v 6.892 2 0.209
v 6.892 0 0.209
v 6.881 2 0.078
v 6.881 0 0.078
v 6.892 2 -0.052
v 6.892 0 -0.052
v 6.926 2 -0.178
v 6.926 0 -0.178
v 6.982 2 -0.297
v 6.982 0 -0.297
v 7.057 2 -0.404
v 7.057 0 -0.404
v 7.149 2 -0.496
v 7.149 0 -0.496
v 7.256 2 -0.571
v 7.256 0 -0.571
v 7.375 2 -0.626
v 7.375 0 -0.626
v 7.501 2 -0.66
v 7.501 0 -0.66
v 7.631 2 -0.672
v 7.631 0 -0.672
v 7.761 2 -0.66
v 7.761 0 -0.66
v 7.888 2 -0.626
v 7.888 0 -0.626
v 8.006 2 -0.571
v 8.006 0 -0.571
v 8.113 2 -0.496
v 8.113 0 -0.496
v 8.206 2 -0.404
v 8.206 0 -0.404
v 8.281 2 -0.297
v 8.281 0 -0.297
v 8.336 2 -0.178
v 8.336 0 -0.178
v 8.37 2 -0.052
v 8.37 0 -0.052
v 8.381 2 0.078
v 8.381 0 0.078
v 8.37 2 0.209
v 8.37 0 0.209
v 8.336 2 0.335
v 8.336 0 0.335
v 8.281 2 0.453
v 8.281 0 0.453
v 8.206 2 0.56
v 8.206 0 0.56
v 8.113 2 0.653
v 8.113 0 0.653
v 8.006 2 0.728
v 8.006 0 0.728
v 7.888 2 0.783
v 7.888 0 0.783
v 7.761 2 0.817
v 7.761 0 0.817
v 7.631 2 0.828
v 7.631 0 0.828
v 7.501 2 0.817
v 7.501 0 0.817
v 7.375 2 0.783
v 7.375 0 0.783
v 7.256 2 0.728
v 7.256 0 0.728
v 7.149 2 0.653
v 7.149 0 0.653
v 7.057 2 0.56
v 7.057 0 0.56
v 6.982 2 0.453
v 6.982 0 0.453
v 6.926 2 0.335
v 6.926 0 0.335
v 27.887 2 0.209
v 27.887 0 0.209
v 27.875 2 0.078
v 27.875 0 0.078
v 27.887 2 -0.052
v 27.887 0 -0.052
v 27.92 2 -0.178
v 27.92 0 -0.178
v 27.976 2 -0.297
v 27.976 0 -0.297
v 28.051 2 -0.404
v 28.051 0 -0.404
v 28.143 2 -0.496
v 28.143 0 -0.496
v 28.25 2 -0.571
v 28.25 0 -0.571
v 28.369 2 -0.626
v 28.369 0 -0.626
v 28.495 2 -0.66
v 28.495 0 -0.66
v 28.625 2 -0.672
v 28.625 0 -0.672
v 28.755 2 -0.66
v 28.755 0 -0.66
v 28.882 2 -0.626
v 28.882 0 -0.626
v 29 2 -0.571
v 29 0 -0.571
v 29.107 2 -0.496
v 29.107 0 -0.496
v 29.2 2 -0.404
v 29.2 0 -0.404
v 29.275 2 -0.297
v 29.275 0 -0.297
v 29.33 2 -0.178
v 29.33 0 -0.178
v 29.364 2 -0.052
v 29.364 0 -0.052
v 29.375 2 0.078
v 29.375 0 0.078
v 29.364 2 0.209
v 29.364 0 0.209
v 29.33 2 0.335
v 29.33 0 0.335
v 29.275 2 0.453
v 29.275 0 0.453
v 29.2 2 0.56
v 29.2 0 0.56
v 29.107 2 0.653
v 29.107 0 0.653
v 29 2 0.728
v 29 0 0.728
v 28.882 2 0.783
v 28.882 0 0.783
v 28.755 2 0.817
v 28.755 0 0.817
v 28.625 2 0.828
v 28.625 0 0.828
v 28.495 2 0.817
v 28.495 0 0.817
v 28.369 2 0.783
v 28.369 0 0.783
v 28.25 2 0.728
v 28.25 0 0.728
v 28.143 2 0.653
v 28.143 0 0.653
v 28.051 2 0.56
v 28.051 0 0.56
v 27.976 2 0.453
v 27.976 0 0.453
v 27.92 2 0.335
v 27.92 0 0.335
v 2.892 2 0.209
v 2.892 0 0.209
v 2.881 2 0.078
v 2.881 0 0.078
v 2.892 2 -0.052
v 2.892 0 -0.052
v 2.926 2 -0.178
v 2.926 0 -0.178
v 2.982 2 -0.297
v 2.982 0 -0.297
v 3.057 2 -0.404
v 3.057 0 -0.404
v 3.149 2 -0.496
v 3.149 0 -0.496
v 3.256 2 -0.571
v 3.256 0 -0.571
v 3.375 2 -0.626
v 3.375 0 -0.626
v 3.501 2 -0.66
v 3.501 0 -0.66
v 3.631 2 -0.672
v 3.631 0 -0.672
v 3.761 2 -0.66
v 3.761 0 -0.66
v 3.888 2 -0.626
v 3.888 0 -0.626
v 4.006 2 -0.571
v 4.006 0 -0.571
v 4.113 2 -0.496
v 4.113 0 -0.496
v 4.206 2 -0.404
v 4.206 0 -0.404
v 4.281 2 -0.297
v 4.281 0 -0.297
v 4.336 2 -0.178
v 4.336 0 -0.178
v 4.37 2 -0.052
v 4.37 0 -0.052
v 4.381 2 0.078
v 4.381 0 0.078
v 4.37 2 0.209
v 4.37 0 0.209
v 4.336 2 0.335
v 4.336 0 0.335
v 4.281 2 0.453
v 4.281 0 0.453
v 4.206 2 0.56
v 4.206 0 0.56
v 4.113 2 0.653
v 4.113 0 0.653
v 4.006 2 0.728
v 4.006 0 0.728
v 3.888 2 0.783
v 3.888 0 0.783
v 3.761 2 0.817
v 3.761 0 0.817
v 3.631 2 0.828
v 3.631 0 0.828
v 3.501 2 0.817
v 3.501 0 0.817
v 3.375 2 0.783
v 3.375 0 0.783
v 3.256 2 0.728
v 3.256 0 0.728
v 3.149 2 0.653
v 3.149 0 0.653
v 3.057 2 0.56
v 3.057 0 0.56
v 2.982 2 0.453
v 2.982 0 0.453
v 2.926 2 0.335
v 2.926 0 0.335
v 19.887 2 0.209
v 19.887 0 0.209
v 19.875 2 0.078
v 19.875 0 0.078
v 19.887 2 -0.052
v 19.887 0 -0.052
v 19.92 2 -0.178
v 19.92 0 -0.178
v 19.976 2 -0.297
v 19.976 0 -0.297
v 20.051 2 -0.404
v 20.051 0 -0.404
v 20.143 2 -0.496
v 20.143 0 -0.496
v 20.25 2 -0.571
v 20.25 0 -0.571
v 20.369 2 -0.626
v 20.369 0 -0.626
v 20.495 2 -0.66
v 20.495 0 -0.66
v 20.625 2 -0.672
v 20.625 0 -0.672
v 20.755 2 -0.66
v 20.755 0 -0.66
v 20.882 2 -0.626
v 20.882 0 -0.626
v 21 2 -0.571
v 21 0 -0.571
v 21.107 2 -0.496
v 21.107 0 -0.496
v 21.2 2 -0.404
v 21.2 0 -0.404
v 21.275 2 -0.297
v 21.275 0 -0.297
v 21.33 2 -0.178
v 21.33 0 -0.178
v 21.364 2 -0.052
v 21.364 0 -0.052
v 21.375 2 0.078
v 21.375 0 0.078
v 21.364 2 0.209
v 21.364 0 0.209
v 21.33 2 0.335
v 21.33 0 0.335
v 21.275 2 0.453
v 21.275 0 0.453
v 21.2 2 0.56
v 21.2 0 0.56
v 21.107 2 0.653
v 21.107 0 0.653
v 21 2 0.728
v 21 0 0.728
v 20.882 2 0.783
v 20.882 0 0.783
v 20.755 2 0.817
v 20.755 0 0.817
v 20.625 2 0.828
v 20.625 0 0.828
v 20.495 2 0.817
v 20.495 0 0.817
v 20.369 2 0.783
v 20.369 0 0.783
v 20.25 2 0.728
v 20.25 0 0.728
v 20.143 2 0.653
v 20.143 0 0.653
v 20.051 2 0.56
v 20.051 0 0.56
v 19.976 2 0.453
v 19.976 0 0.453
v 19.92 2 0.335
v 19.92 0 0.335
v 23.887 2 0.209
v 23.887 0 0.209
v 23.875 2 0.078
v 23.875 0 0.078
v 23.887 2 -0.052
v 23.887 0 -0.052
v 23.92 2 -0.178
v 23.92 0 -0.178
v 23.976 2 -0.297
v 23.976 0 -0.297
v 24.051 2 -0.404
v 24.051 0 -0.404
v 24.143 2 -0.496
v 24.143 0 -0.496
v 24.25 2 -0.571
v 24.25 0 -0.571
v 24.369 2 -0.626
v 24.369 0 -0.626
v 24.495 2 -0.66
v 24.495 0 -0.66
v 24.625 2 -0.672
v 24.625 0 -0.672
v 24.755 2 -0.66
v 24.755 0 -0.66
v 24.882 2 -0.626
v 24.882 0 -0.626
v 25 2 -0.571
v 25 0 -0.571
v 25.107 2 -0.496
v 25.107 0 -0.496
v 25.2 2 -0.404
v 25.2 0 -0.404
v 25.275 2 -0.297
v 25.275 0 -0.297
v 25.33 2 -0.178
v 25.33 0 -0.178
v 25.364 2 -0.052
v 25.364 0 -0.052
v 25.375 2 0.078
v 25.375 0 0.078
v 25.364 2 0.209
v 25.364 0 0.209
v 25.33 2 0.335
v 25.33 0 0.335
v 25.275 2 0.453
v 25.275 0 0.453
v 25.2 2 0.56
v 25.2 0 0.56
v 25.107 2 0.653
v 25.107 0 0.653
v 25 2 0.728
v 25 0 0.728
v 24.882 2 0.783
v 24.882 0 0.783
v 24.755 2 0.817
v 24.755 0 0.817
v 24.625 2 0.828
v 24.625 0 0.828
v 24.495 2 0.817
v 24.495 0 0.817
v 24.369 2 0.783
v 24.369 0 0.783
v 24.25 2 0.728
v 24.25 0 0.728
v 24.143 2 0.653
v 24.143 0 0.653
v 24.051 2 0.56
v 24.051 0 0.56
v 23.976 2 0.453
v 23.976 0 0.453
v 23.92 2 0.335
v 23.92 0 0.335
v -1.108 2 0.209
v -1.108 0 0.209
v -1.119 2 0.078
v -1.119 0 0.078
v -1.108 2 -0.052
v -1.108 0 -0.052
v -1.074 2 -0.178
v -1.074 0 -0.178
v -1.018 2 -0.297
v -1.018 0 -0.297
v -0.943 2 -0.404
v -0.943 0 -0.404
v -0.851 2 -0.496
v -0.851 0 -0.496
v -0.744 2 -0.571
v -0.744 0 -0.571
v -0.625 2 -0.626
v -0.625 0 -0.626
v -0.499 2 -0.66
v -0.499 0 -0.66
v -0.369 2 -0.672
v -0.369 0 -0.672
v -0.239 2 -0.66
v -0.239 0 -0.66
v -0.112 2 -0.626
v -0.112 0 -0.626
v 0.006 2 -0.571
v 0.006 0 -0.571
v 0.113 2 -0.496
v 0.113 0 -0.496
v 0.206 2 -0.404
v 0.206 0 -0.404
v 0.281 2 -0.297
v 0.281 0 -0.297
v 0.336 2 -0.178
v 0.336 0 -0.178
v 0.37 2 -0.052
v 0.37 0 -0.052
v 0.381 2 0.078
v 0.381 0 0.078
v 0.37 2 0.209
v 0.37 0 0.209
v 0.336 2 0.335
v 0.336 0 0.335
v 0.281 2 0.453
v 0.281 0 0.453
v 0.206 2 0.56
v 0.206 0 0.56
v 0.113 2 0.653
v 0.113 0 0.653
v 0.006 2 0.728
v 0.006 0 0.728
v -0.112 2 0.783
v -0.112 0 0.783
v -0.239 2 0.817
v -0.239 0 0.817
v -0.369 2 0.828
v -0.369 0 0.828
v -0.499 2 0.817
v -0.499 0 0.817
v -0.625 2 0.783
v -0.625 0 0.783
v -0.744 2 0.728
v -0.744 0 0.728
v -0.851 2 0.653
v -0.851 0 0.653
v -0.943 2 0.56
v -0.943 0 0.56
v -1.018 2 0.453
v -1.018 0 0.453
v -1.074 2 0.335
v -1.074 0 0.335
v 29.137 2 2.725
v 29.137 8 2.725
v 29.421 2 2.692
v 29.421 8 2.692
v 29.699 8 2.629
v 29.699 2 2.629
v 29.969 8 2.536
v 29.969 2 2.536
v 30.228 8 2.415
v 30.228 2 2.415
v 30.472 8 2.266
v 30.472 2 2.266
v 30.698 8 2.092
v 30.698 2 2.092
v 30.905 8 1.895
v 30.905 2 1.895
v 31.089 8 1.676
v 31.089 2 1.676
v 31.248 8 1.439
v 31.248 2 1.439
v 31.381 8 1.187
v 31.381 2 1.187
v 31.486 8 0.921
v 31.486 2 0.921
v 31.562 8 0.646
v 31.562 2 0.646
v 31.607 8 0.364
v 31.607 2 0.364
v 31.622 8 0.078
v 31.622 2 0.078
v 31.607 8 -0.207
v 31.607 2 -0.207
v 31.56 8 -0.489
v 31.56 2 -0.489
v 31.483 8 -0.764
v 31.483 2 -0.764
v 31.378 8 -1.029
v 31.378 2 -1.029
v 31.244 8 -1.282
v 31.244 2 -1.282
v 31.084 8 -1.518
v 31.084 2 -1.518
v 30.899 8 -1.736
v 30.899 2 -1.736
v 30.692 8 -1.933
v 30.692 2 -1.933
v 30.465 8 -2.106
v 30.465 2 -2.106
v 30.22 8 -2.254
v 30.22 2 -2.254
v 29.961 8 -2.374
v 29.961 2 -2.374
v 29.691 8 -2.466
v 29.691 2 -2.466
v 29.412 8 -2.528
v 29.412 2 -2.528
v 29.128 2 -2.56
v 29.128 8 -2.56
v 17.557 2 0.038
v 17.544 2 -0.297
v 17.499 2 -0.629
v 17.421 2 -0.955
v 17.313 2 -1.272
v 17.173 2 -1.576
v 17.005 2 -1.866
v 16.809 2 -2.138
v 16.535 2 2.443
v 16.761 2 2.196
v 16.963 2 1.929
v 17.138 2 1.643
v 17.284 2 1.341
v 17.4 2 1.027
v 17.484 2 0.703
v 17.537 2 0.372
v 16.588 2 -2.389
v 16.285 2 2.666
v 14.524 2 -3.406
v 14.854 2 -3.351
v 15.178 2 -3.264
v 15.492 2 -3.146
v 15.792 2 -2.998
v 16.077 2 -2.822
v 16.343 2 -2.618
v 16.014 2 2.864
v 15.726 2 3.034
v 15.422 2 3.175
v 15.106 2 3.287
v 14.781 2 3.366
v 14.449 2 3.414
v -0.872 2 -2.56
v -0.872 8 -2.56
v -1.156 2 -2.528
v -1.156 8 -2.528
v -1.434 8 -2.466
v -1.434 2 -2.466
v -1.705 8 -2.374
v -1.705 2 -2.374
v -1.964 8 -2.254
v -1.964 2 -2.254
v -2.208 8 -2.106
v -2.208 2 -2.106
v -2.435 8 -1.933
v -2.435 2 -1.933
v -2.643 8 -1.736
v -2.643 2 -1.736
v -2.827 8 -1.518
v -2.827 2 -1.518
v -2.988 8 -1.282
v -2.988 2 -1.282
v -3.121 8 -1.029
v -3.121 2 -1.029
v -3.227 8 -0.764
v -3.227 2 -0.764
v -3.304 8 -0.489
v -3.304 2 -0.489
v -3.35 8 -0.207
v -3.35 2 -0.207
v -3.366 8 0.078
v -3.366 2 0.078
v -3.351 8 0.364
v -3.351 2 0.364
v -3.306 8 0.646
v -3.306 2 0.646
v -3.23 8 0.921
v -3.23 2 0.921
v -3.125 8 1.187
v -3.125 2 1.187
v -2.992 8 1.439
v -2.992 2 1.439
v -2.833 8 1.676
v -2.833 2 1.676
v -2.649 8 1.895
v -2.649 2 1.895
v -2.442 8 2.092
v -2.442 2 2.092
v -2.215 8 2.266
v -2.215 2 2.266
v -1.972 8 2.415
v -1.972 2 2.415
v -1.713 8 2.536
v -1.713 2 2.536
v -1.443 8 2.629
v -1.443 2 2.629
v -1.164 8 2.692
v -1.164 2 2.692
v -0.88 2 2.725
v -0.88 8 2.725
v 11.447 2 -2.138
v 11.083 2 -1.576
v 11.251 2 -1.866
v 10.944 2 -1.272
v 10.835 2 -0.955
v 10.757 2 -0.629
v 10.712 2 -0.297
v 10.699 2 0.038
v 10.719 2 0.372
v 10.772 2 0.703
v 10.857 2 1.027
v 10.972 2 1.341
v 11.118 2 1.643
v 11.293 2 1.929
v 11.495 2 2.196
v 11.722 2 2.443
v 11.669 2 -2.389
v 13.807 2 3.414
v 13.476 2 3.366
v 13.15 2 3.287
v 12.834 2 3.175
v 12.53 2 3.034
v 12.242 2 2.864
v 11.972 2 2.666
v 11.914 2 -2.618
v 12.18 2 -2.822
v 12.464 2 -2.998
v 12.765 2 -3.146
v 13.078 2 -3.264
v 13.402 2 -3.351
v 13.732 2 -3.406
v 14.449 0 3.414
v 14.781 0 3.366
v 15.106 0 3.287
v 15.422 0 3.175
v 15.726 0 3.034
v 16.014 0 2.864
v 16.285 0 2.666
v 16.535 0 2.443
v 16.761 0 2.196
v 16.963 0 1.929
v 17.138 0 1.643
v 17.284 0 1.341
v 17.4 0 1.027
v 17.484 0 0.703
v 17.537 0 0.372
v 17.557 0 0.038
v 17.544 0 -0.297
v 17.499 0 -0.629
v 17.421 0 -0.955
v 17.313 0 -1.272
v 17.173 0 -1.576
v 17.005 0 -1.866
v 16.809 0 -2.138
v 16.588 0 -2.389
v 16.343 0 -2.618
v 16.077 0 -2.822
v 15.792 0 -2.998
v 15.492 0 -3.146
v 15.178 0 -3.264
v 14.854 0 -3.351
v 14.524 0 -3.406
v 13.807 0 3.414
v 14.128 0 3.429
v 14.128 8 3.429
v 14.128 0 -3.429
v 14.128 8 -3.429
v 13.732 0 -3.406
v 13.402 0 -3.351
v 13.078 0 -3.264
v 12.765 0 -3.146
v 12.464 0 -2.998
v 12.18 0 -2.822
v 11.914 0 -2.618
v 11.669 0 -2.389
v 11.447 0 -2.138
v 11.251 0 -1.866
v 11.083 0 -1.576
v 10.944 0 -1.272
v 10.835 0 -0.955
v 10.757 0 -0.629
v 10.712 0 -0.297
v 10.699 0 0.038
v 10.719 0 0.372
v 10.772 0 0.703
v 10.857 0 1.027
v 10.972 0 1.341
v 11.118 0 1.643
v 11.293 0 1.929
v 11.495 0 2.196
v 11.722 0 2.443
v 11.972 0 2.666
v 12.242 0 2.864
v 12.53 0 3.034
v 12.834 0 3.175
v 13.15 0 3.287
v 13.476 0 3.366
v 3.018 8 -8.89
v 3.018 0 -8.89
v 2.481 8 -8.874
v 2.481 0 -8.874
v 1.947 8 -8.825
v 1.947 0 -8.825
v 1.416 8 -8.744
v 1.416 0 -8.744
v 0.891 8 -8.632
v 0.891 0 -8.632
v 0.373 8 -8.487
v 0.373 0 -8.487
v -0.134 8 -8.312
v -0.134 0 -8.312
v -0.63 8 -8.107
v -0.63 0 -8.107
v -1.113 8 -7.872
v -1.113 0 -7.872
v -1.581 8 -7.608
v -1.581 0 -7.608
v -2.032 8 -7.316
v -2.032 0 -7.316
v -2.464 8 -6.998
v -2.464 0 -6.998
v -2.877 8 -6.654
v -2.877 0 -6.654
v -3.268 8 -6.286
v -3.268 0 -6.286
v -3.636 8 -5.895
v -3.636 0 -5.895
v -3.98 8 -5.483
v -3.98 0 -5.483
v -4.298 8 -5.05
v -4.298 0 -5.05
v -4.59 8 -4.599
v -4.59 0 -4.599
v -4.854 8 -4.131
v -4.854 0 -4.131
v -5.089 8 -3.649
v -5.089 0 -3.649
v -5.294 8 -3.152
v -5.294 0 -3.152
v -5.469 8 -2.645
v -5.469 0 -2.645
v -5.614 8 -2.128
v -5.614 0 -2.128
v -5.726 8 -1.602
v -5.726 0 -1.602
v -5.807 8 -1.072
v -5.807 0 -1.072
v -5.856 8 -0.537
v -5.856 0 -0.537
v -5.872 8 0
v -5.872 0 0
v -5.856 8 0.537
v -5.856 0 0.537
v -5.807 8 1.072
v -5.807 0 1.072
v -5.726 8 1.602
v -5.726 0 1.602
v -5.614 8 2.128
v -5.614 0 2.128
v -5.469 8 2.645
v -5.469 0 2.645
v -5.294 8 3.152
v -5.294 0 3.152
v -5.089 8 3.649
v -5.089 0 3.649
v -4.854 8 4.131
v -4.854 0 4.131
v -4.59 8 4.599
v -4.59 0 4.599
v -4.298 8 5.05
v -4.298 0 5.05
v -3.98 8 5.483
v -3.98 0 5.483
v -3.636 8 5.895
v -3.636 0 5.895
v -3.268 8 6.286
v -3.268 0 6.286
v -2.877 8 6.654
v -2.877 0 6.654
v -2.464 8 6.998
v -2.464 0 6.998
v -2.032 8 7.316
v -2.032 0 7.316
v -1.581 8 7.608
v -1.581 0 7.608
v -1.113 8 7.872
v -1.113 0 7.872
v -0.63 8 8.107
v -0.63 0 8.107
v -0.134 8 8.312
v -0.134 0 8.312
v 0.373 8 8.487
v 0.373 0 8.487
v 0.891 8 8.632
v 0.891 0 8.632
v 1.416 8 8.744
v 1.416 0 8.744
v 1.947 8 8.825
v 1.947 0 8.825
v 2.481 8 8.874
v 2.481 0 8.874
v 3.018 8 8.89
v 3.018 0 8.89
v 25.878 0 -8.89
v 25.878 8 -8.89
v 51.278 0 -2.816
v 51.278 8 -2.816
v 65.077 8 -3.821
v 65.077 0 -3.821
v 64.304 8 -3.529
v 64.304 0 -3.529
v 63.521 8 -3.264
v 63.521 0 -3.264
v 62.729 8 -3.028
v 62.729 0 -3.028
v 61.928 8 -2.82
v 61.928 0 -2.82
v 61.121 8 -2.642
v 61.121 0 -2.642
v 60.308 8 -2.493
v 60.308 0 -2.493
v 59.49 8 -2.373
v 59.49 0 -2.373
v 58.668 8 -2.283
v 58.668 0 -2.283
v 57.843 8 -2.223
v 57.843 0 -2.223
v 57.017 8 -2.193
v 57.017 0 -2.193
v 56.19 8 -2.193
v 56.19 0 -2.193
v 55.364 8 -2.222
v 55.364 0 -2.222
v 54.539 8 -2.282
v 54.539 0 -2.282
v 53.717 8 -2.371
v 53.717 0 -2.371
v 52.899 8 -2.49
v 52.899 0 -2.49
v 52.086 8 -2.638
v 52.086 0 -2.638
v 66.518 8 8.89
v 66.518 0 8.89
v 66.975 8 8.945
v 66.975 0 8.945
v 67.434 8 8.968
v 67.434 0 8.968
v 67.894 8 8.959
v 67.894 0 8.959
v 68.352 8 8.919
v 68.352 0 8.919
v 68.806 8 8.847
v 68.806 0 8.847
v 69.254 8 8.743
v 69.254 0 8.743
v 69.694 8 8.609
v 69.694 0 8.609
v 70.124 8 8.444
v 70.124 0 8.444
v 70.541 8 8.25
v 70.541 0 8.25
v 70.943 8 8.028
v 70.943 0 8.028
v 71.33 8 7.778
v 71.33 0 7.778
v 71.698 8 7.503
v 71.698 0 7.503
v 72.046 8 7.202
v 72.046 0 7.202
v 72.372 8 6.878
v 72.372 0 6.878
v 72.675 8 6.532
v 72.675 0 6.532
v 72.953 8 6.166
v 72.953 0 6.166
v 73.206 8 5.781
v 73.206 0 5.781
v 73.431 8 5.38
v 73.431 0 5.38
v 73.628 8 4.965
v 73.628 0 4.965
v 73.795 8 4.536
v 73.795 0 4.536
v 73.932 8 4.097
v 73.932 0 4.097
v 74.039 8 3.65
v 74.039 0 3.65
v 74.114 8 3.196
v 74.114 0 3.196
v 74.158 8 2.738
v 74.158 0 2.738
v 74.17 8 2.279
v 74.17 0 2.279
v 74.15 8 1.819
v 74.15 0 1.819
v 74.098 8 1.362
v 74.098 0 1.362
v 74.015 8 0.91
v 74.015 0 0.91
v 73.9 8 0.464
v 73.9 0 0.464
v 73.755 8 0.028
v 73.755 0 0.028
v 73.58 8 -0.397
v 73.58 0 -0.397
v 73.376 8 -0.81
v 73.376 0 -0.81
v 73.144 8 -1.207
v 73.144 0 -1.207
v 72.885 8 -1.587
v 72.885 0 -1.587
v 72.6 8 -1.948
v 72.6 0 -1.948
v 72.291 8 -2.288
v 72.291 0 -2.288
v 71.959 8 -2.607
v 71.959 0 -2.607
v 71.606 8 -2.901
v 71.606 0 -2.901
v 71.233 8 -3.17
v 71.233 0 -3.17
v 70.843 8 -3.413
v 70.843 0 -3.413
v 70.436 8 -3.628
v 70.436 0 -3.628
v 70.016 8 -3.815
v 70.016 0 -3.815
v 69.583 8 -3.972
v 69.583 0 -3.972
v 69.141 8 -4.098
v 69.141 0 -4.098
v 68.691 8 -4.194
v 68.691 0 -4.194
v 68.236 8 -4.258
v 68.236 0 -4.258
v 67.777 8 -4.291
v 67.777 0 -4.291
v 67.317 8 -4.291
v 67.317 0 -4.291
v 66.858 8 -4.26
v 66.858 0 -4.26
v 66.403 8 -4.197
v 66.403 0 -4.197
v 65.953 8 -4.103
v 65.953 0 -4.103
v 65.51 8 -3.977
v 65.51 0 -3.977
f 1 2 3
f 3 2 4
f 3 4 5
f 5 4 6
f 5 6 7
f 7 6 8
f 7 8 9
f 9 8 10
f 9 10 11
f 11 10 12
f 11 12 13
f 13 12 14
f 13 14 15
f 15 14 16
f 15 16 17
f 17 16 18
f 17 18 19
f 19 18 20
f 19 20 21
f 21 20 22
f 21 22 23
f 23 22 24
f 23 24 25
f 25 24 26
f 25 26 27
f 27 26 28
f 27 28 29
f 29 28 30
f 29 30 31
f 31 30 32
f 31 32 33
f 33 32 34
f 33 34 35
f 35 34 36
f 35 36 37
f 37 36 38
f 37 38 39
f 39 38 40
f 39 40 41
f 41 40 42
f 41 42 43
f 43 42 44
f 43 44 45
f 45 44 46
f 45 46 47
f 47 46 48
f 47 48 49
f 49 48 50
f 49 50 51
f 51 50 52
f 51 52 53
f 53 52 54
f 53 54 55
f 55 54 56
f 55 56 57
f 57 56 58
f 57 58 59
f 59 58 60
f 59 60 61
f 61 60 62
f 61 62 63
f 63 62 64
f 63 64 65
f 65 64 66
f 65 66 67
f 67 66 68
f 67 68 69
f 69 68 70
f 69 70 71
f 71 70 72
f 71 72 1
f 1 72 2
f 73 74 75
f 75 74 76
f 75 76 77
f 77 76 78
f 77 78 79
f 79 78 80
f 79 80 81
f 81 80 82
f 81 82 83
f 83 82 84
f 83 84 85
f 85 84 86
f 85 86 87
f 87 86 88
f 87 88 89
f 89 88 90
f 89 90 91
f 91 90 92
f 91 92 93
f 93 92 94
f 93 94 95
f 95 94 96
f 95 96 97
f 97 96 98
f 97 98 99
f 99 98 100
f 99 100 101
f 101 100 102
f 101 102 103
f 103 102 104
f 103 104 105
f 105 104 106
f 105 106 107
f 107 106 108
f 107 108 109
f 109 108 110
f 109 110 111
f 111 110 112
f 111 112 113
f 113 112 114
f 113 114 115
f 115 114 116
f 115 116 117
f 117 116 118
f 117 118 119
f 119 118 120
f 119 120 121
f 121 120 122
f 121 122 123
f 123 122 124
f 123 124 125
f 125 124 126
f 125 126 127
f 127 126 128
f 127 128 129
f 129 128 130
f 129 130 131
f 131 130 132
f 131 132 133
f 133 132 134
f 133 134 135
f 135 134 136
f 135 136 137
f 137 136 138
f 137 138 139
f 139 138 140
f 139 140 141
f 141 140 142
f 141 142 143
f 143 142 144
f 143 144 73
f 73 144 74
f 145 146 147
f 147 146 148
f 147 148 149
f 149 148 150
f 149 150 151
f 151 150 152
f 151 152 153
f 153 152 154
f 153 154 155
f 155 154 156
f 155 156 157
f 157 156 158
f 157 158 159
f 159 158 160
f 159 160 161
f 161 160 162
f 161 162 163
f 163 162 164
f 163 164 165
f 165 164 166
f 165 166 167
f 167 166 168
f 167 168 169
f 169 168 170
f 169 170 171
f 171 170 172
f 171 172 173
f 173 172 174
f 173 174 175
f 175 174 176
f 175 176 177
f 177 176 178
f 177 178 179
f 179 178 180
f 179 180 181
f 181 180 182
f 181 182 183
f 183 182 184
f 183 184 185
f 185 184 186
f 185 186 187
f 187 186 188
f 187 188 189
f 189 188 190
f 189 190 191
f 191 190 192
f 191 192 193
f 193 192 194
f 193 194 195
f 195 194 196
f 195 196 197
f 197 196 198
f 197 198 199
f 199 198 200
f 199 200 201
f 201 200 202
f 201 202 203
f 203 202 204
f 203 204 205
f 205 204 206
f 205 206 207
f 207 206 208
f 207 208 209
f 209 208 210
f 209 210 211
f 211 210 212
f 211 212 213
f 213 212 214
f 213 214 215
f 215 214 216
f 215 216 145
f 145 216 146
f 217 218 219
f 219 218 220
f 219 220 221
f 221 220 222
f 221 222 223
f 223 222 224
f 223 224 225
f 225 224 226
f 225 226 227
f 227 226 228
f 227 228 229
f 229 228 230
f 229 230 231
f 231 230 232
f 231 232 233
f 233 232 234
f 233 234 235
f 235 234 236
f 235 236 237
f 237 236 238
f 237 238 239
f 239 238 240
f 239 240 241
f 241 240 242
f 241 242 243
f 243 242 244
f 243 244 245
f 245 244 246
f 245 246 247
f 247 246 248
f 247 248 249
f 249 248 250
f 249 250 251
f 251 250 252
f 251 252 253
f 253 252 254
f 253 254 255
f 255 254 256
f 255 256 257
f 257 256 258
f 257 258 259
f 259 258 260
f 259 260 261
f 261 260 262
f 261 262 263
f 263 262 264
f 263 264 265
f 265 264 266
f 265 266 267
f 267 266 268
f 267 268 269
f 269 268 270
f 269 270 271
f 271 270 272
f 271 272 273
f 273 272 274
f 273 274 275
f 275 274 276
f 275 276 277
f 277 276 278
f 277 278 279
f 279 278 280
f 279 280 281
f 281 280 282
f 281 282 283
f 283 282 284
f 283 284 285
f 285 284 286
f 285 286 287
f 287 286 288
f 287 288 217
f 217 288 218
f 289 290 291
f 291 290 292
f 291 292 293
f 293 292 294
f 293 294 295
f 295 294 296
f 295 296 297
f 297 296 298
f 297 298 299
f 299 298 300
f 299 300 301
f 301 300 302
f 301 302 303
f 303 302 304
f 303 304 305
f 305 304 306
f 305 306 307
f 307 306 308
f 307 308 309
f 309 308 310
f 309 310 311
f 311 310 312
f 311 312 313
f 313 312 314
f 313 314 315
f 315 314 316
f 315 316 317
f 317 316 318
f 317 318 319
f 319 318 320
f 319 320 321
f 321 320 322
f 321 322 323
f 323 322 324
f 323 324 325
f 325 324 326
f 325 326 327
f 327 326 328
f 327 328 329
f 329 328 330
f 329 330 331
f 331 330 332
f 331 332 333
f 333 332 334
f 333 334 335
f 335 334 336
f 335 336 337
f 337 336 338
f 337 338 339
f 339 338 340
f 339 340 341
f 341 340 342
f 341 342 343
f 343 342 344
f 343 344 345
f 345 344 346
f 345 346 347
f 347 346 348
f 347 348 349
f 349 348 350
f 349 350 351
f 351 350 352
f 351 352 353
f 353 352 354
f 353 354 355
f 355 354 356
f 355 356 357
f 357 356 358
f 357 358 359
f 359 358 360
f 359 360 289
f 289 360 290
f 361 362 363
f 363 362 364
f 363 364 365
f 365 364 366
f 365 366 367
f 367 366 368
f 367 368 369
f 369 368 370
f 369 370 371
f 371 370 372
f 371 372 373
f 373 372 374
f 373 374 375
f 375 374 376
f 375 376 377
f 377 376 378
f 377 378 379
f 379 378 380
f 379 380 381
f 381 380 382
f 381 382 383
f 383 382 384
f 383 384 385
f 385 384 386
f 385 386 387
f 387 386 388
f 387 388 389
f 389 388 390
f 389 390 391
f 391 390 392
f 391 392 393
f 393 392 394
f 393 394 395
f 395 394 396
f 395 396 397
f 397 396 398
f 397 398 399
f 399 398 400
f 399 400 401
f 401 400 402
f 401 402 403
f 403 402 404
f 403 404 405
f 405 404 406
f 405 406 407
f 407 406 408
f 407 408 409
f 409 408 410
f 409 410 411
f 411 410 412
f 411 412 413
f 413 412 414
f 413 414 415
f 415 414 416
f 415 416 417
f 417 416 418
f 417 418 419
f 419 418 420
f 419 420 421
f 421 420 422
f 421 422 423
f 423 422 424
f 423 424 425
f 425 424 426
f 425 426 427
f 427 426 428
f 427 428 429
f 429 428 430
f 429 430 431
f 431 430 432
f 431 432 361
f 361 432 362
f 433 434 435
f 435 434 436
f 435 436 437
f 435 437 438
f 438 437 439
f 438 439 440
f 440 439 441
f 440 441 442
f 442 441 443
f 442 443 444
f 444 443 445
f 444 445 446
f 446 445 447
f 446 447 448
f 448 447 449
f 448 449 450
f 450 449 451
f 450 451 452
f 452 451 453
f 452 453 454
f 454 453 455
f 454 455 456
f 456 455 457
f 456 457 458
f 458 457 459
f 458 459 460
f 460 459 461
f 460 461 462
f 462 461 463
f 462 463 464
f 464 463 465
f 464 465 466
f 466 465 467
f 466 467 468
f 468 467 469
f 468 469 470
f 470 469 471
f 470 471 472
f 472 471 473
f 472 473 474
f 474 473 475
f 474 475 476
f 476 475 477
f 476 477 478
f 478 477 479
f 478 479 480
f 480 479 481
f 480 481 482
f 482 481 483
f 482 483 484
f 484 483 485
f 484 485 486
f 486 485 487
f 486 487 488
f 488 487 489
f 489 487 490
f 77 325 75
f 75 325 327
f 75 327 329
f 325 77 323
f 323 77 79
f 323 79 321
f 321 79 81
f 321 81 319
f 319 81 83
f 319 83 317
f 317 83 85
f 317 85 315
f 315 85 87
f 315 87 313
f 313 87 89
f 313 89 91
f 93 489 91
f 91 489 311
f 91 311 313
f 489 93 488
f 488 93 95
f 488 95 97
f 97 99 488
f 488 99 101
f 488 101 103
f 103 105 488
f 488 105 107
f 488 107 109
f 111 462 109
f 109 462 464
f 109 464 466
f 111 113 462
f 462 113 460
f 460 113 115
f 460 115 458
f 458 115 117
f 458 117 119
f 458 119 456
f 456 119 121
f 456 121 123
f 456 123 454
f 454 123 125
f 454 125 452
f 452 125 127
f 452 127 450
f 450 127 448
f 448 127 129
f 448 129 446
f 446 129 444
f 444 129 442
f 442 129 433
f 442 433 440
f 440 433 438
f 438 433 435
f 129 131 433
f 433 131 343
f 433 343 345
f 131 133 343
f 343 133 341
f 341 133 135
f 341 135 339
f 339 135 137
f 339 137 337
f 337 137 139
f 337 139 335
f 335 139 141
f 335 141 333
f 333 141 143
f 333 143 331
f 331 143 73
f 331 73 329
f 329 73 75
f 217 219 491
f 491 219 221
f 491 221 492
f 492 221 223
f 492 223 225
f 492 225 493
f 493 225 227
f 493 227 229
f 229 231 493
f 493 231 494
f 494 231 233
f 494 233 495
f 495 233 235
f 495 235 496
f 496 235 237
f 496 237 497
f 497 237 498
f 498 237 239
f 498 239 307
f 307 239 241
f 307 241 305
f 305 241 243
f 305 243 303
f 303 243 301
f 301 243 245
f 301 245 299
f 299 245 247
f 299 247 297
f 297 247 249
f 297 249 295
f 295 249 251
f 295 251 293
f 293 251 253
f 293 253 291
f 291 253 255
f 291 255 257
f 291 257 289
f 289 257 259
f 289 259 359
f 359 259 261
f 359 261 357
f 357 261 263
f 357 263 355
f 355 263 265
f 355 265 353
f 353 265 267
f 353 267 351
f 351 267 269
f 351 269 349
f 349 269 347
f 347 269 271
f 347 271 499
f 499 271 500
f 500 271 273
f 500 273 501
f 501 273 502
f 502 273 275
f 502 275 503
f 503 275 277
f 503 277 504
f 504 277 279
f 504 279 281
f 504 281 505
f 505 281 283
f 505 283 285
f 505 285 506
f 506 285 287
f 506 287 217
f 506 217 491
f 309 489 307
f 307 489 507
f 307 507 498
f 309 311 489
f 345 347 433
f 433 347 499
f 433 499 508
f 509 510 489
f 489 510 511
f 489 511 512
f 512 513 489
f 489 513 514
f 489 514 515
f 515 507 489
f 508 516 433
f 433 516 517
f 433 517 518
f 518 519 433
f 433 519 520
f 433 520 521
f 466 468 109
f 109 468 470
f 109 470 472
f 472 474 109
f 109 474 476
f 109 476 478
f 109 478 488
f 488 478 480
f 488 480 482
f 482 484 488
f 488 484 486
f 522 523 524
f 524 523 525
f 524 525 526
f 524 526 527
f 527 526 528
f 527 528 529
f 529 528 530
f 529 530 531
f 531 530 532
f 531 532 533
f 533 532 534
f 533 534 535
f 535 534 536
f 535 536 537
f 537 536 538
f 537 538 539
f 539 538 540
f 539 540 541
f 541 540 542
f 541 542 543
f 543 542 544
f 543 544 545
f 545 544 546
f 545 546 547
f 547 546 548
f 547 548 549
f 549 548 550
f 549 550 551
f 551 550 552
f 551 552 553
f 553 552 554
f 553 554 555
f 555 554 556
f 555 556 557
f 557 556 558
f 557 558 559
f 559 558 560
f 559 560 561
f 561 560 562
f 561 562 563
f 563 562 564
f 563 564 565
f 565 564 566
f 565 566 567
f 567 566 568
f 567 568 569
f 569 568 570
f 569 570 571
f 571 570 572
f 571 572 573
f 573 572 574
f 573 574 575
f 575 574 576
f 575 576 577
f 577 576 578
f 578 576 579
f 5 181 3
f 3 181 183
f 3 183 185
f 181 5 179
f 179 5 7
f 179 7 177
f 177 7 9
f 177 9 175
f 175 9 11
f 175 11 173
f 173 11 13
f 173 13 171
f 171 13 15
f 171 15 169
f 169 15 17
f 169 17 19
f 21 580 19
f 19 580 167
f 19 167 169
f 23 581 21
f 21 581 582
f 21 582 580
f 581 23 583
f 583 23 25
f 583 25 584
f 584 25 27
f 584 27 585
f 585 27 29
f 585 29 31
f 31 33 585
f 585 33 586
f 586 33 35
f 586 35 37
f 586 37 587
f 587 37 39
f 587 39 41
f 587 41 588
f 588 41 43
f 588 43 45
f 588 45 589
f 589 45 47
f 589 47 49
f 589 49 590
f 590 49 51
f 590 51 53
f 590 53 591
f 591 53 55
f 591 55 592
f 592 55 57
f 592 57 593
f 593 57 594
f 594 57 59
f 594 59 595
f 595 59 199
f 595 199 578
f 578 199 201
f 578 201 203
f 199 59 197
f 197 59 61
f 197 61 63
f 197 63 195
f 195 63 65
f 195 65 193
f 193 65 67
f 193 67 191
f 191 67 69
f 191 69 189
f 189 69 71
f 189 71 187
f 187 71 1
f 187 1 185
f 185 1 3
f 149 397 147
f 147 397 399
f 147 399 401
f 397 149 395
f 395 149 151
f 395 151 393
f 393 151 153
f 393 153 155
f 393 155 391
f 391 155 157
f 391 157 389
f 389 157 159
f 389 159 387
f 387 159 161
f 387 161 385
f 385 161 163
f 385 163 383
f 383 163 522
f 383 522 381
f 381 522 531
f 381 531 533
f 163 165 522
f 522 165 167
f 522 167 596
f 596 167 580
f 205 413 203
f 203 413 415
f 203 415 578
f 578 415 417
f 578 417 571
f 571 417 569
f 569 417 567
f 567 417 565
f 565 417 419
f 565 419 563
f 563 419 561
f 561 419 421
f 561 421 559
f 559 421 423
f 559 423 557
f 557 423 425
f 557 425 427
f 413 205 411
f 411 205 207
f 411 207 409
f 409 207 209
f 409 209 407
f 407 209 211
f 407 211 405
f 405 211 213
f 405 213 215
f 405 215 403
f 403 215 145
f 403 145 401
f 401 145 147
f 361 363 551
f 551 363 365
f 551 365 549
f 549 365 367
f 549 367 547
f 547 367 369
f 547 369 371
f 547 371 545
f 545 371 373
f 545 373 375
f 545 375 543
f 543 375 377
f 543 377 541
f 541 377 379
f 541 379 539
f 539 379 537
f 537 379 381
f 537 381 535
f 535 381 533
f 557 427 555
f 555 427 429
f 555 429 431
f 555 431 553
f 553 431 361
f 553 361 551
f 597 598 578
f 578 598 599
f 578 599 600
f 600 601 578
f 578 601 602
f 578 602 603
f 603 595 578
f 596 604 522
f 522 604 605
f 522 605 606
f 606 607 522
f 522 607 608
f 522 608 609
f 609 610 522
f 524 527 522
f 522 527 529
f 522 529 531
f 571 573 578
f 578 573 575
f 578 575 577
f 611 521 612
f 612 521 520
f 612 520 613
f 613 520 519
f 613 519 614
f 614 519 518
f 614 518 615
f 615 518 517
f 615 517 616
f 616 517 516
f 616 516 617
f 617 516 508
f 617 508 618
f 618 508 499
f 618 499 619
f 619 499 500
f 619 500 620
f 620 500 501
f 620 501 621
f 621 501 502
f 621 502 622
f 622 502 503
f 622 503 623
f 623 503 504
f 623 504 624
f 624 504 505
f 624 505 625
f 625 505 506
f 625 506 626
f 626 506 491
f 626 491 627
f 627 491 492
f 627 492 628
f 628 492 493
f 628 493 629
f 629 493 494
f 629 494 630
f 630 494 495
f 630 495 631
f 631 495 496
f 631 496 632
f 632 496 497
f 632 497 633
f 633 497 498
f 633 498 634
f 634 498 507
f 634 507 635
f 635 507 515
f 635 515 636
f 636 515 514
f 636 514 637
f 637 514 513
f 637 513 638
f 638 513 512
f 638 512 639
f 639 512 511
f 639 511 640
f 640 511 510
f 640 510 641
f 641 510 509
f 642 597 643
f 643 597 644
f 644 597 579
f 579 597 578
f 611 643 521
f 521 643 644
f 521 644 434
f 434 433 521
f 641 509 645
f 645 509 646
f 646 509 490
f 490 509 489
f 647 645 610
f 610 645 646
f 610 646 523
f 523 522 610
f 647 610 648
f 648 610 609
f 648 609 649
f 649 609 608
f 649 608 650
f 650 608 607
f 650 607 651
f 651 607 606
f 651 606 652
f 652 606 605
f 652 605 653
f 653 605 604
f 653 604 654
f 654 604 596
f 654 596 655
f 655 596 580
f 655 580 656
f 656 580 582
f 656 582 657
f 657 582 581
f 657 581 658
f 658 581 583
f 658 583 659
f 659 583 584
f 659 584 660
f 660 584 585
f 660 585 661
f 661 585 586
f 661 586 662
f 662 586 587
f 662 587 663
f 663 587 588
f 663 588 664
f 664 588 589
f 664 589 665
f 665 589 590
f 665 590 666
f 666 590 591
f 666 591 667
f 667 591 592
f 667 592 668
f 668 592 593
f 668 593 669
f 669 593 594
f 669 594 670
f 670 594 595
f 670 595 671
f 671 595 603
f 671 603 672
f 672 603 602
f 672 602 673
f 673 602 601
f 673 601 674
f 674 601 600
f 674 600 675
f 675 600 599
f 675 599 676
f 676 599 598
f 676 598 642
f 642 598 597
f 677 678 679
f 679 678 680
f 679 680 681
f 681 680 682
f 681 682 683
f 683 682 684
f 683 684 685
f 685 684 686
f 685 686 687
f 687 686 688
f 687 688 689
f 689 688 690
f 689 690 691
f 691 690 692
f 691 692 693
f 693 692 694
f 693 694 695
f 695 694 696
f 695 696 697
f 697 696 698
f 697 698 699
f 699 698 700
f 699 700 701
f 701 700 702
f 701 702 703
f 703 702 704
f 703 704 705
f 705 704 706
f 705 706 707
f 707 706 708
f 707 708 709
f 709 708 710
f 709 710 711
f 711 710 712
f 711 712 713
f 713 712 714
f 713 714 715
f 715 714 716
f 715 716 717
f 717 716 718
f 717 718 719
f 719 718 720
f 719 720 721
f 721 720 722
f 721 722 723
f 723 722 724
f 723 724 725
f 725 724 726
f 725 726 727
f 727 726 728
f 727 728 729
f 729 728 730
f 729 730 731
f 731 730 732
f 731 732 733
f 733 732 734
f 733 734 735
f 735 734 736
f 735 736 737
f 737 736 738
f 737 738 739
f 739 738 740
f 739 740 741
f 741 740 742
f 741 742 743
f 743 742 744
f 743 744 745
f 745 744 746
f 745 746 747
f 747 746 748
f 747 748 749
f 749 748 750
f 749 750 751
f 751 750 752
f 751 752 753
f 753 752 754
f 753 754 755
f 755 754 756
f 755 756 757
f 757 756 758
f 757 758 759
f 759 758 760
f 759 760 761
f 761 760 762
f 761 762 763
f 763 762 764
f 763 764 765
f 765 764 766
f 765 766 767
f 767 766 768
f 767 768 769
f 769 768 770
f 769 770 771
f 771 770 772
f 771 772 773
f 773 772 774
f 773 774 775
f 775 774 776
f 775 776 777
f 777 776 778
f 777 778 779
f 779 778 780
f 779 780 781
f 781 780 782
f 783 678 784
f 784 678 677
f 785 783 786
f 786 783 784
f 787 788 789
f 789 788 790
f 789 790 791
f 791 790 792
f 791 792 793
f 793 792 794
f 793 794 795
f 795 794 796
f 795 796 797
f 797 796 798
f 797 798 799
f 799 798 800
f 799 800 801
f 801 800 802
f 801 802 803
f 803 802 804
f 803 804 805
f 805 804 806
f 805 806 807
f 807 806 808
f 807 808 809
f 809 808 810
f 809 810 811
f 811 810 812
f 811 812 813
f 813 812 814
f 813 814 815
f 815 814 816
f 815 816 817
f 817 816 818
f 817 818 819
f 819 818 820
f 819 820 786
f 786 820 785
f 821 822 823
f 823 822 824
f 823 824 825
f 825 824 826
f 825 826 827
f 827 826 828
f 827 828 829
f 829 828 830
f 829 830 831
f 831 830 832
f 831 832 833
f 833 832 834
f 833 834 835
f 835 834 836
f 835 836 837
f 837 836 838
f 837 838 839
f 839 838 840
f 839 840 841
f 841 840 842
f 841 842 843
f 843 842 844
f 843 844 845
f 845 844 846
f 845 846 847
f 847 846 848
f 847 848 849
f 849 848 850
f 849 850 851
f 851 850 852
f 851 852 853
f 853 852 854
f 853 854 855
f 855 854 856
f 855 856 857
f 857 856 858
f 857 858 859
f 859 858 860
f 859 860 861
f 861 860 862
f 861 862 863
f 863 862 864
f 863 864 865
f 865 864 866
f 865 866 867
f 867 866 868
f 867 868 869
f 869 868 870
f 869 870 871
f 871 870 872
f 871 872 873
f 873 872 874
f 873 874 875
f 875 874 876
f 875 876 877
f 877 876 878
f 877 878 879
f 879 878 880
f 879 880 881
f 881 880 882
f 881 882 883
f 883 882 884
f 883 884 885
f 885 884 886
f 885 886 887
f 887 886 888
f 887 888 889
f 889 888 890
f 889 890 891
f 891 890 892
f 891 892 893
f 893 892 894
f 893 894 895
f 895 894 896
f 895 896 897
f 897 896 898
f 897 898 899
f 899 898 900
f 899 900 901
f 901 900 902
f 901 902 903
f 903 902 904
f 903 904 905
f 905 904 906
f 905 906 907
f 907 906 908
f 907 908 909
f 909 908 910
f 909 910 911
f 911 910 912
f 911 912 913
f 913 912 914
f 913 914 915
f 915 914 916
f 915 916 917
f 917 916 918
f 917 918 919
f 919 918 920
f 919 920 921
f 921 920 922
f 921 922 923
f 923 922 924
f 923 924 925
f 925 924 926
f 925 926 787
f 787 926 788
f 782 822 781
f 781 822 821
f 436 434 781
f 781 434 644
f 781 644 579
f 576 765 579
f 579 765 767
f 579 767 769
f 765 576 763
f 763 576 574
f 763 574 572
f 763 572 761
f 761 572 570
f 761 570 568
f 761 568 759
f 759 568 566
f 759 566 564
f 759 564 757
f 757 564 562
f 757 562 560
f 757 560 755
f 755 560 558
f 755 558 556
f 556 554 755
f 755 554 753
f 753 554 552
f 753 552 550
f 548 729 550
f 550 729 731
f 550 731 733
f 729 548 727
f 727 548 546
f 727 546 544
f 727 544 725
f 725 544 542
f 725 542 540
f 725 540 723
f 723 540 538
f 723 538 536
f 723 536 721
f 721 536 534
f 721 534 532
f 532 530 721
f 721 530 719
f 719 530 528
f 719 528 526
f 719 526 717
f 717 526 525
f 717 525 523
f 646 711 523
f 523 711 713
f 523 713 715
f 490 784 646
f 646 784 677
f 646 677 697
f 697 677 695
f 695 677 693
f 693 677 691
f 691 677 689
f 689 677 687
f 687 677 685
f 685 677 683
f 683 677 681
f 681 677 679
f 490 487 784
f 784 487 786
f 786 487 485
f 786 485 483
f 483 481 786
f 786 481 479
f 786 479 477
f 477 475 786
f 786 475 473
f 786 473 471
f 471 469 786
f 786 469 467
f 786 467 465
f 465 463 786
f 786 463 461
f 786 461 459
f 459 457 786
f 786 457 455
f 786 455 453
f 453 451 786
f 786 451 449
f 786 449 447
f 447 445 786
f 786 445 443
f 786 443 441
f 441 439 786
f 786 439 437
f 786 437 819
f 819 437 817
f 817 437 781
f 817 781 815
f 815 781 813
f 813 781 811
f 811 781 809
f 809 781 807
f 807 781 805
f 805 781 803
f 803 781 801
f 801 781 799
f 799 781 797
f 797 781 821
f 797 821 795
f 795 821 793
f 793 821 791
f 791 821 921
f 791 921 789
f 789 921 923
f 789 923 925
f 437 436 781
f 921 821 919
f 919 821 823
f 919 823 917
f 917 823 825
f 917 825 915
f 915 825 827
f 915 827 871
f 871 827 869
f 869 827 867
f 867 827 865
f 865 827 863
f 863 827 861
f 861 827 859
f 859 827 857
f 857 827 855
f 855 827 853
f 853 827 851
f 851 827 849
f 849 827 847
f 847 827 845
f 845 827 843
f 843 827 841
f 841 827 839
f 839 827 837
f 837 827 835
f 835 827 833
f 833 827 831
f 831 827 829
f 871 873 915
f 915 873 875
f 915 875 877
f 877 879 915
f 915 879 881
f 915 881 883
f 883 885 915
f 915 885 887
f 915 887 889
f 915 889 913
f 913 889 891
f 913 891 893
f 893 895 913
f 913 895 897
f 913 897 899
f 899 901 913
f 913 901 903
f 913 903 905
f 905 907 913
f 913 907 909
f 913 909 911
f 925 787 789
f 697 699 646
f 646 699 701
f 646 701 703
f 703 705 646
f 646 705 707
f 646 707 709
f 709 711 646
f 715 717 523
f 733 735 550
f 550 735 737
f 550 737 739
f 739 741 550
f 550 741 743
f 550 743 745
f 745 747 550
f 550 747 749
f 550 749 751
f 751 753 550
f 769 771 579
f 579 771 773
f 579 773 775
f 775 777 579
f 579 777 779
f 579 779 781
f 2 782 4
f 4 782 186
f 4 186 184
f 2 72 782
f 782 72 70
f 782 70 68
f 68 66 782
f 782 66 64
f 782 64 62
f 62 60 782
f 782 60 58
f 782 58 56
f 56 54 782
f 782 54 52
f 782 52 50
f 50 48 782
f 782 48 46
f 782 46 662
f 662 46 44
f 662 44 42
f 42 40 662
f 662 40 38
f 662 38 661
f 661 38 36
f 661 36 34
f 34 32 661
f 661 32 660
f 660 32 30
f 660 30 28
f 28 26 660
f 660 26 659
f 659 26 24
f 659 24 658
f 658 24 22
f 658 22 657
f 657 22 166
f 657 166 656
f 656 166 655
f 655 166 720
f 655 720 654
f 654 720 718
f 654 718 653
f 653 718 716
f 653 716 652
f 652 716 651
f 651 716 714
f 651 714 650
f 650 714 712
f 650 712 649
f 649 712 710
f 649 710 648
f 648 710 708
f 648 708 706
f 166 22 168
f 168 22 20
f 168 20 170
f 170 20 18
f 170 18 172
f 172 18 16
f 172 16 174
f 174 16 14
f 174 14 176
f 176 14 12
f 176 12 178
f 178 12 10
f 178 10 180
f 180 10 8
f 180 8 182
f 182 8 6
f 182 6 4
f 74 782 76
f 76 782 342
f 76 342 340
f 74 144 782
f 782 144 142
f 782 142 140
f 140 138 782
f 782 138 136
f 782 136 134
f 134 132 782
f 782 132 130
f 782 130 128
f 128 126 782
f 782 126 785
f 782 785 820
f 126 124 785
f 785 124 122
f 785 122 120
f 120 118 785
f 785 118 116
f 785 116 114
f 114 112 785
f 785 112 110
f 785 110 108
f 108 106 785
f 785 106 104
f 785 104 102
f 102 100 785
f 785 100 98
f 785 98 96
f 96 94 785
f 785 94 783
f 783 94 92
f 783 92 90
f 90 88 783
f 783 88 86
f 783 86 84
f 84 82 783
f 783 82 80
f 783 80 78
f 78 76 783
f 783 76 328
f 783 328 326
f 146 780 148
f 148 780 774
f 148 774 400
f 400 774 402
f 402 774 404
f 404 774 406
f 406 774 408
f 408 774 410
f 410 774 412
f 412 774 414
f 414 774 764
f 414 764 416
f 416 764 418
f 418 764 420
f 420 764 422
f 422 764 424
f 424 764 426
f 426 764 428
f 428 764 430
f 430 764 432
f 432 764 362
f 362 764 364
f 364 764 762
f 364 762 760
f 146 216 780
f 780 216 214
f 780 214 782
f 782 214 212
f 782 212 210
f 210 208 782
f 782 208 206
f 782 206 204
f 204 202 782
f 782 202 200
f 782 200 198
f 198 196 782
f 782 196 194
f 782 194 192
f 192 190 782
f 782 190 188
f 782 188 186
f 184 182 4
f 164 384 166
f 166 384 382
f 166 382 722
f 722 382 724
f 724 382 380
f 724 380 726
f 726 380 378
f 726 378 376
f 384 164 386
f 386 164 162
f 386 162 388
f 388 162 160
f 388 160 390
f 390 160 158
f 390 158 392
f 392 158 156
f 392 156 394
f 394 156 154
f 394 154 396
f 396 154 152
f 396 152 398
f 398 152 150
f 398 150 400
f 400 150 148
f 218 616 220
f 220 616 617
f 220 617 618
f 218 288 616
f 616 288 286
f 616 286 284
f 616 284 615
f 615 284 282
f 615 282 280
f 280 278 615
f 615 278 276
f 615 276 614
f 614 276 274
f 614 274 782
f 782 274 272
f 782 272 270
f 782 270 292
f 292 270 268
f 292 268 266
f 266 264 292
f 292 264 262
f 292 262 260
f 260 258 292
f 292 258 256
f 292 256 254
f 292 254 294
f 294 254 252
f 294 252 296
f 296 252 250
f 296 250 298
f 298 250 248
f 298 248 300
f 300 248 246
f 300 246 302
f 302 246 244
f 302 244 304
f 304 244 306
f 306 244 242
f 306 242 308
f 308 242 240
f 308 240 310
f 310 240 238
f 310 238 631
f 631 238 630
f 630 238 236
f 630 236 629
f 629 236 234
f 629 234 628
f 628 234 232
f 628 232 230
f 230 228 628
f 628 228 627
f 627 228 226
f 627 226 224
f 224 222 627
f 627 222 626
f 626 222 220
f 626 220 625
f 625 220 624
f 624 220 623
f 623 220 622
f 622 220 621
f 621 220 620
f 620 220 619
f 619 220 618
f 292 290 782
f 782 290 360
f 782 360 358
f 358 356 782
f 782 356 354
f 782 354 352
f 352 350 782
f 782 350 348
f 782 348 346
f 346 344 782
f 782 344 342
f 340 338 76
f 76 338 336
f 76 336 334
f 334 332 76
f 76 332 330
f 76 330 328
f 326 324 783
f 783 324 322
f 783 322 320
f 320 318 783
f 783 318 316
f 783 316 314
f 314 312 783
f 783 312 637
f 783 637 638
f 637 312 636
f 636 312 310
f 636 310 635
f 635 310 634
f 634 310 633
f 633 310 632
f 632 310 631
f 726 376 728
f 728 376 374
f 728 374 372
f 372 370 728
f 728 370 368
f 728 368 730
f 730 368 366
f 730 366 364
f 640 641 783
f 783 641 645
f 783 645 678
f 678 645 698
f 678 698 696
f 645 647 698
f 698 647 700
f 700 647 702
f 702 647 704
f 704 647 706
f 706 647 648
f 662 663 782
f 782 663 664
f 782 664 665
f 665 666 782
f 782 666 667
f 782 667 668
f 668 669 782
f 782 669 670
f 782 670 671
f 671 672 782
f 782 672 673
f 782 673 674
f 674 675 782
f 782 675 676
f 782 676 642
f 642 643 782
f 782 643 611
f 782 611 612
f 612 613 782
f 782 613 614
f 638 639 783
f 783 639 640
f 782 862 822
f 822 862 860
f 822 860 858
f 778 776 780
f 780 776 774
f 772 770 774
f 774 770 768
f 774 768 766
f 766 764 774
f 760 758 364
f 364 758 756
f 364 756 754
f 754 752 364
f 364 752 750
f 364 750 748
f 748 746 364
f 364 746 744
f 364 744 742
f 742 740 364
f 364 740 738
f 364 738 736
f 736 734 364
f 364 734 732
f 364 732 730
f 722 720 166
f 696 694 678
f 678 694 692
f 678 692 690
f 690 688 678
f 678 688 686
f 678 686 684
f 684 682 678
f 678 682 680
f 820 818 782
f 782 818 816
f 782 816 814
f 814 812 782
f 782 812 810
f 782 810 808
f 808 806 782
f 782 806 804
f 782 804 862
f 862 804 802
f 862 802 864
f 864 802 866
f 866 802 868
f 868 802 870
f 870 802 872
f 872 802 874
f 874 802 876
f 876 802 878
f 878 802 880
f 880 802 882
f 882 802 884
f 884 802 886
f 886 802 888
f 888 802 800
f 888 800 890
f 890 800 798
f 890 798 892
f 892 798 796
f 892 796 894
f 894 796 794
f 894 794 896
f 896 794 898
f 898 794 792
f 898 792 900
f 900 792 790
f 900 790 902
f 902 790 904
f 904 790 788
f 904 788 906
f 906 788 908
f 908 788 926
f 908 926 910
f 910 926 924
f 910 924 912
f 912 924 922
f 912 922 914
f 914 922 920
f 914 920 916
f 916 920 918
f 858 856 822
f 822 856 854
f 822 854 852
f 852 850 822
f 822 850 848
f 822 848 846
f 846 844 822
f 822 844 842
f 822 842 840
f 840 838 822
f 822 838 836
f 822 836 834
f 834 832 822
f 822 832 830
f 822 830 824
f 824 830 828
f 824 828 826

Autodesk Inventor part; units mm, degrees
ref_plane "YZ Plane" through (0, 0, 0) normal (1, 0, 0) x (0, 1, 0)
ref_plane "XZ Plane" through (0, 0, 0) normal (0, 1, 0) x (-1, 0, 0)
ref_plane "XY Plane" through (0, 0, 0) normal (0, 0, 1) x (1, 0, 0)
sketch "Sketch1" plane through (0, 0, 0) normal (0, 1, 0) x (-1, 0, 0)
  line L0 (-3.0181, -8.89) -> (-25.8781, -8.89)
  line L1 (-3.0181, 8.89) -> (-27.578, 8.89)
  line L2 (-25.8781, -8.89) -> (-51.2781, -2.8161)
  line L3 (-27.578, 8.89) -> (-53.0779, 8.89)
  arc A0 (-51.2781, -2.8161) -> (-65.0775, -3.8214) centre (-56.5948, -25.0493) ccw
  line L4 (-53.0779, 8.89) -> (-66.5181, 8.89)
  arc A1 (-66.5181, 8.89) -> (-65.0775, -3.8214) centre (-67.5384, 2.337) ccw
  arc A2 (-3.0181, -8.89) -> (-3.0181, 8.89) centre (-3.0181, 0) ccw
  point P0 (0, 0)
  point P1 (-74.1281, 1.5902)
  point P2 (5.8719, 0)
  dimension "d31" = 80
  dimension "d32" = 8.89
  dimension "d33" = 6.6319
  dimension "d35" = 25.4
  dimension "d36" = 63.5
  dimension "d37" = 22.86
  dimension "d38" = 22.86
extrude "Extrusion1" add sketch "Sketch1" along normal blind 8
sketch "Sketch3" plane through (0, 8, 0) normal (0, 1, 0) x (1, 0, 0)
  circle A0 centre (14.1281, 0) radius 3.429
  arc A1 (3.0181, 8.89) -> (3.0181, -8.89) centre (3.0181, 0) ccw projected
  line L0 (14.1281, 3.429) -> (-0.8719, 2.5603)
  line L1 (14.1281, -3.429) -> (-0.8805, -2.725)
  arc A2 (-0.8719, 2.5603) -> (-0.8805, -2.725) centre (-0.7188, -0.0826) ccw
  line L2 (14.1281, 5.8203) -> (14.1281, -4.2261)
  line L3 (14.1281, 3.429) -> (29.1281, 2.5603)
  line L4 (14.1281, -3.429) -> (29.1368, -2.725)
  arc A3 (29.1368, -2.725) -> (29.1281, 2.5603) centre (28.9751, -0.0826) ccw
  circle A4 centre (7.6311, -0.0783) radius 0.75
  circle A5 centre (3.6311, -0.0783) radius 0.75
  circle A6 centre (-0.3689, -0.0783) radius 0.75
  circle A7 centre (20.6252, -0.0783) radius 0.75
  circle A8 centre (24.6252, -0.0783) radius 0.75
  circle A9 centre (28.6252, -0.0783) radius 0.75
  point P0 (-5.8719, 0)
  point P1 (-5.8719, 0)
  point P2 (14.1281, 0.7971)
  point P3 (25.2381, 0)
  point P4 (14.4491, -3.4139)
  point P5 (14.524, 3.4061)
  point P6 (13.7323, 3.4061)
  point P7 (13.8072, -3.4139)
  point P8 (1.1225, -0.0783)
  point P9 (-3.3661, -0.0783)
  dimension "d40" = 20
  dimension "d41" = 15
  dimension "d42" = 15.0086
  dimension "d43" = 6
  dimension "d56" = 6.858
  dimension "d57" = 6
  dimension "d58" = 1.5
  dimension "d59" = 1.5
  dimension "d60" = 1.5
  dimension "d61" = 4
  dimension "d62" = 4
  dimension "d64" = 2.9972
extrude "Extrusion2" cut sketch "Sketch3" against normal through all contours L2 L3 A0 | A0 L0 L2
extrude "Extrusion3" cut sketch "Sketch3" against normal blind 6 contours L1 A2 L0 A0 | A0 L3 A3 L4 | A4 | A5 | A6 | A7 | A8 | A9
sketch "Sketch5" plane through (0, 8, 0) normal (0, 1, 0) x (1, 0, 0)
  circle A0 centre (7.6311, -0.0783) radius 0.75
  circle A1 centre (3.6311, -0.0783) radius 0.75
  circle A2 centre (-0.3689, -0.0783) radius 0.75
  arc A3 (-0.8719, 2.5603) -> (-0.8805, -2.725) centre (-0.7188, -0.0826) ccw projected
  line L0 (14.1281, 12.8466) -> (14.1281, -5.9886)
  circle A4 centre (20.6252, -0.0783) radius 0.75
  circle A5 centre (24.6252, -0.0783) radius 0.75
  circle A6 centre (28.6252, -0.0783) radius 0.75
  point P0 (0, 0)
  point P1 (5.5545, -1.8442)
  point P2 (1.8249, -1.9269)
  point P3 (3.6589, -0.0783)
  point P4 (-3.3661, -0.0783)
  point P5 (-3.3661, -0.0783)
  point P6 (14.1281, 3.429)
  point P7 (14.1281, 3.429)
  dimension "d65" = 1.5
  dimension "d66" = 1.5
  dimension "d67" = 1.5
  dimension "d68" = 4
  dimension "d69" = 4
  dimension "d70" = 2.9972
extrude "Extrusion5" cut sketch "Sketch5" against normal blind 25.4
properties part number "patanueva"
